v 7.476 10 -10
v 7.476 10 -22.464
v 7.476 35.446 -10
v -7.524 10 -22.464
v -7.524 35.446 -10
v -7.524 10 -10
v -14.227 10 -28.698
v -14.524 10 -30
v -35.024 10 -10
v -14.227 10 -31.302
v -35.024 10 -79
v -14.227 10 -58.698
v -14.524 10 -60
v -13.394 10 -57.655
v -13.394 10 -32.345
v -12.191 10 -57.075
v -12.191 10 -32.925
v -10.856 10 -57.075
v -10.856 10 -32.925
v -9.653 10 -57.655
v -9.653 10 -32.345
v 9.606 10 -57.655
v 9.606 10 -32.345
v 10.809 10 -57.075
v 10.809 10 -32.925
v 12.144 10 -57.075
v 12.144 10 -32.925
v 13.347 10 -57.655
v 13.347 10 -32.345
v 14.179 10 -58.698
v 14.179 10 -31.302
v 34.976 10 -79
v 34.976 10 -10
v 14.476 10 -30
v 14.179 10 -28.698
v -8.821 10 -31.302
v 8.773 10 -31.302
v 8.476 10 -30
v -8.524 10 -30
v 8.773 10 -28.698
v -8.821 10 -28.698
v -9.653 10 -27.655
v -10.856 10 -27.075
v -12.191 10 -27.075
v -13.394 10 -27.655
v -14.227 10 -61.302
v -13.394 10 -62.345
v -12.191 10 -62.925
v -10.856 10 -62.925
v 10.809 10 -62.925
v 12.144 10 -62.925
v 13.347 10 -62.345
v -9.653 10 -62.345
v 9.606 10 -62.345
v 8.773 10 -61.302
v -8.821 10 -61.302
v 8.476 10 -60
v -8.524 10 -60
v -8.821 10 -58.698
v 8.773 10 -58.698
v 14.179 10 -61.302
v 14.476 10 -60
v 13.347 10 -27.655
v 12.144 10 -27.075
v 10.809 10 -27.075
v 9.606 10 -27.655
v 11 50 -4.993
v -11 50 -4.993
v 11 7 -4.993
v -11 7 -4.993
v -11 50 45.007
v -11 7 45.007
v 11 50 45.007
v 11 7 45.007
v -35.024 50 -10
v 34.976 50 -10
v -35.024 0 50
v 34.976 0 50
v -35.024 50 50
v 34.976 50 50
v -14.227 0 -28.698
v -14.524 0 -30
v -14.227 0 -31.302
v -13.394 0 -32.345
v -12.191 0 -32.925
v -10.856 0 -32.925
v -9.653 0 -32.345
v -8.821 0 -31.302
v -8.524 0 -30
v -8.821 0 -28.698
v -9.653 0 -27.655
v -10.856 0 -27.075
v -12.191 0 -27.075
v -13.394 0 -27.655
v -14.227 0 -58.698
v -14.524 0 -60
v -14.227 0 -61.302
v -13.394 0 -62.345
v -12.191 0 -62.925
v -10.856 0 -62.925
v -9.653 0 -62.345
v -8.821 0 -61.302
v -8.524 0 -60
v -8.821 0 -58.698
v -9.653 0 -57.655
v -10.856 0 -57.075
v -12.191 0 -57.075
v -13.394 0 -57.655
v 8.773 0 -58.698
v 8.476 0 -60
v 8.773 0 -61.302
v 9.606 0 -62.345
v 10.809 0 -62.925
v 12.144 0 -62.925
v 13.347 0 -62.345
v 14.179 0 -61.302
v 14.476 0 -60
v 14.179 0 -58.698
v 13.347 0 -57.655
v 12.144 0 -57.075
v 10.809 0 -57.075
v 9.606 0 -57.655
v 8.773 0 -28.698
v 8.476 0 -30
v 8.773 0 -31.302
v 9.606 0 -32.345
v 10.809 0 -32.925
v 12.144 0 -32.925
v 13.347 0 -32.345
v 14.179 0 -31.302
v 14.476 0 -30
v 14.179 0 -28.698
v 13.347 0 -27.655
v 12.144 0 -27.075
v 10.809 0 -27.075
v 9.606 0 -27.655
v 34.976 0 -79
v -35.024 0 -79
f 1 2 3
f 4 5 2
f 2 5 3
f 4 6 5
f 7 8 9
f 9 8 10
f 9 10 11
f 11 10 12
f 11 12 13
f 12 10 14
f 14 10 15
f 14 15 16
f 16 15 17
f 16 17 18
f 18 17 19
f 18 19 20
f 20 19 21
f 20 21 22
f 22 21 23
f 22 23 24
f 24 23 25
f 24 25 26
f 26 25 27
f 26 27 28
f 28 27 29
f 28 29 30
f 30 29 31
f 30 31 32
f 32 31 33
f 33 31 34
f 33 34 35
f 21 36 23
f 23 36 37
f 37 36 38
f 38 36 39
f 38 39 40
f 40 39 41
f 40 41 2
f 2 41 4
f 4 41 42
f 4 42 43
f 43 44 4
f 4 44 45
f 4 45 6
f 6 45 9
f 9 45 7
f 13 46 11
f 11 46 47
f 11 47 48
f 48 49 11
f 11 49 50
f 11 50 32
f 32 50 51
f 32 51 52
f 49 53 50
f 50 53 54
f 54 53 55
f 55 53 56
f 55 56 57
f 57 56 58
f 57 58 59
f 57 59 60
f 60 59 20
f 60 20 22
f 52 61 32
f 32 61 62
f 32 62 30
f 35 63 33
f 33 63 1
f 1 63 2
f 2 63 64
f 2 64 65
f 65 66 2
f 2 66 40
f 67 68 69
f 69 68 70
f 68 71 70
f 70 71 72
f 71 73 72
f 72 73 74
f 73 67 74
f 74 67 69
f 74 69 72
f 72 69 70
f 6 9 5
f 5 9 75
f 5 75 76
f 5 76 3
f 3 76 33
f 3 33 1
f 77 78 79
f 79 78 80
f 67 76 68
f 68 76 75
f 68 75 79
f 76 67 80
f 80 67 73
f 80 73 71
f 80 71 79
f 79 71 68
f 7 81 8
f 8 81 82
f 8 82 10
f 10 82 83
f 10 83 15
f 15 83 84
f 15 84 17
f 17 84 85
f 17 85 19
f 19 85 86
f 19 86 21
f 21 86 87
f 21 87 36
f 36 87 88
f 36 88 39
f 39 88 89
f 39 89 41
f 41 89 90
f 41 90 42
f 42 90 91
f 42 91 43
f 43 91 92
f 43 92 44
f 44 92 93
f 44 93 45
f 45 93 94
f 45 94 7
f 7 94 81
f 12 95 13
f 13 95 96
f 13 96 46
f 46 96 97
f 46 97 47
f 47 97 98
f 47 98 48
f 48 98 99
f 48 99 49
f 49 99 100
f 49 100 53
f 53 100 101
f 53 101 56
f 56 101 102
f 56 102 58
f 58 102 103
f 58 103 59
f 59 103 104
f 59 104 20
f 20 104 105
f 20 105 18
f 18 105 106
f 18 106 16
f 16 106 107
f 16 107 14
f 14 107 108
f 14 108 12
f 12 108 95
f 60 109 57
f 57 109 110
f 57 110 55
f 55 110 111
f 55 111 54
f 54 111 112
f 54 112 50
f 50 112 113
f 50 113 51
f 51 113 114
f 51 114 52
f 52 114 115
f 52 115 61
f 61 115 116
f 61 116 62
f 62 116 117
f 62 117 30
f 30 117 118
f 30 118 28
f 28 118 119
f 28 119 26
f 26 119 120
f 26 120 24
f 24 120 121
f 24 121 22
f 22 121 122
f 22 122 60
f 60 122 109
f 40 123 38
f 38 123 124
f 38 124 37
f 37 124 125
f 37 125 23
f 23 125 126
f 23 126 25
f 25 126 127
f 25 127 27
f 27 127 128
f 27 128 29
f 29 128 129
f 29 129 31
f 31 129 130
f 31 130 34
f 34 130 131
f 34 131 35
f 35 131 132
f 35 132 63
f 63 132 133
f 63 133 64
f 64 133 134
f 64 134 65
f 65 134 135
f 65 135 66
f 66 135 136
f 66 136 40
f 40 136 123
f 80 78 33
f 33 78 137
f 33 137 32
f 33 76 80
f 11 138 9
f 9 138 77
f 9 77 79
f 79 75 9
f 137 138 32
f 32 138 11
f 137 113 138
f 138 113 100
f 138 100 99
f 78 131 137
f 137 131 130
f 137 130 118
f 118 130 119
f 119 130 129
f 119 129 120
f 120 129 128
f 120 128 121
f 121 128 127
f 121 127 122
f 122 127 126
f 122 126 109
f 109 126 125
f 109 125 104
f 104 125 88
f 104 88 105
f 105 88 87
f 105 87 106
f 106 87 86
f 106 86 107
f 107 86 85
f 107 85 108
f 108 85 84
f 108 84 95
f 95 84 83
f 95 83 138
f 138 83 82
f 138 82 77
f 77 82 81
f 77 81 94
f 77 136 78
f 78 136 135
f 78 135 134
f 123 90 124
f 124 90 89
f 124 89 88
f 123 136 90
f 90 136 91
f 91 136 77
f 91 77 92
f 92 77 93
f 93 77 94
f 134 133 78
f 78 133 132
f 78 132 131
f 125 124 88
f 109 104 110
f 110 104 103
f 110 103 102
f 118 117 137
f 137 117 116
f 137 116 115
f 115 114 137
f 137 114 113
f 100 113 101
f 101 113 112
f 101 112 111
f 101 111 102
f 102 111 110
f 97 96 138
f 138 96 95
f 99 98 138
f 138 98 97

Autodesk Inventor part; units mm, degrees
ref_plane "YZ Plane" through (0, 0, 0) normal (1, 0, 0) x (0, 1, 0)
ref_plane "XZ Plane" through (0, 0, 0) normal (0, 1, 0) x (-1, 0, 0)
ref_plane "XY Plane" through (0, 0, 0) normal (0, 0, 1) x (1, 0, 0)
sketch "Boceto1" plane through (0, 0, 0) normal (0, 1, 0) x (-1, 0, 0)
  line L0 (0.0239, -45) -> (35.0239, -45)
  line L1 (35.0239, -10) -> (-34.9761, -10)
  line L2 (-40.6213, -10) -> (-84.6707, -10)
  line L3 (-100, -10) -> (100, -10)
  line L4 (-100, -10) -> (100, -10)
  line L5 (105.0239, -10) -> (-104.9761, -10)
  line L6 (105.0239, -10) -> (-104.9761, -10)
  line L7 (105, 10) -> (-105, 10)
  line L8 (105, 10) -> (-105, 10)
  line L9 (0.0239, -45) -> (-34.9761, -45)
  circle A0 centre (11.5239, -60) radius 3
  circle A1 centre (11.5239, -30) radius 3
  circle A2 centre (-11.4761, -30) radius 3
  line L10 (11.5239, -30) -> (-11.4761, -60)
  line L11 (-34.9761, -79) -> (35.0239, -79)
  line L12 (-34.9761, -10) -> (-34.9761, -79)
  circle A3 centre (-11.4761, -60) radius 3
  line L13 (11.5239, -60) -> (-11.4761, -30)
  line L14 (35.0239, -45) -> (35.0239, -10)
  line L15 (35.0239, -79) -> (35.0239, -10)
  point P0 (0, 0)
  point P1 (0, 0)
  point P2 (0, 0)
  point P3 (0.0478, -10)
  point P4 (0, 0)
  point P5 (-95.8154, 10)
  dimension "d0" = 20
  dimension "d1" = 20
  dimension "d2" = 30
  dimension "d3" = 30
  dimension "d4" = 20
  dimension "d5" = 35
  dimension "d6" = 35
  dimension "d7" = 69
extrude "Extrusión1" add sketch "Boceto1" along normal blind 10
sketch "Boceto2" plane through (0, 0, 0) normal (0, -1, 0) x (1, 0, 0)
  line L0 (-35.0239, -10) -> (34.9761, -10) projected
  line L1 (-35.0239, -10) -> (-35.0239, 50)
  line L2 (-35.0239, 50) -> (34.9761, 50)
  line L3 (34.9761, 50) -> (34.9761, -10)
  point P0 (0, 0)
  dimension "d10" = 60
extrude "Extrusión2" add sketch "Boceto2" against normal blind 50
sketch "Boceto3" plane through (0, 50, 0) normal (0, 1, 0) x (1, 0, 0)
  line L0 (-35.0239, 79) -> (-35.0239, -50) projected
  line L1 (-35.0239, 9.9865) -> (-35.0239, -50)
  line L2 (-11, -45.0068) -> (11, -45.0068)
  line L3 (11, -45.0068) -> (11, 4.9932)
  line L4 (11, 4.9932) -> (-11, 4.9932)
  line L5 (-11, 4.9932) -> (-11, -45.0068)
  line L6 (-11, -45.0068) -> (11, 4.9932) construction
  line L7 (11, -45.0068) -> (-11, 4.9932) construction
  point P0 (0, 0)
  point P1 (0, -20.0068)
  dimension "d13" = 22
  dimension "d14" = 50
extrude "Extrusión3" cut sketch "Boceto3" against normal blind 43
ref_plane "Plano de trabajo1" through (-0.0239, 0, -79) normal (-1, 0, 0) x (0, 0, 1)
sketch "Boceto4" plane through (-0.0239, 0, -79) normal (-1, 0, 0) x (0, 0, 1)
  line L0 (69, 10) -> (0, 10) projected
  line L1 (69, 10) -> (40.4098, 10)
  line L2 (69, 10) -> (69, 50) projected
  line L3 (69, 10) -> (69, 42.6104)
  line L4 (69, 35.4459) -> (55.8036, 8.5042)
  point P0 (79, 0)
  point P1 (56.5363, 10)
  dimension "d17" = 30
extrude "Extrusión4" add sketch "Boceto4" along normal mid plane 15
properties part number "servo_piece"
